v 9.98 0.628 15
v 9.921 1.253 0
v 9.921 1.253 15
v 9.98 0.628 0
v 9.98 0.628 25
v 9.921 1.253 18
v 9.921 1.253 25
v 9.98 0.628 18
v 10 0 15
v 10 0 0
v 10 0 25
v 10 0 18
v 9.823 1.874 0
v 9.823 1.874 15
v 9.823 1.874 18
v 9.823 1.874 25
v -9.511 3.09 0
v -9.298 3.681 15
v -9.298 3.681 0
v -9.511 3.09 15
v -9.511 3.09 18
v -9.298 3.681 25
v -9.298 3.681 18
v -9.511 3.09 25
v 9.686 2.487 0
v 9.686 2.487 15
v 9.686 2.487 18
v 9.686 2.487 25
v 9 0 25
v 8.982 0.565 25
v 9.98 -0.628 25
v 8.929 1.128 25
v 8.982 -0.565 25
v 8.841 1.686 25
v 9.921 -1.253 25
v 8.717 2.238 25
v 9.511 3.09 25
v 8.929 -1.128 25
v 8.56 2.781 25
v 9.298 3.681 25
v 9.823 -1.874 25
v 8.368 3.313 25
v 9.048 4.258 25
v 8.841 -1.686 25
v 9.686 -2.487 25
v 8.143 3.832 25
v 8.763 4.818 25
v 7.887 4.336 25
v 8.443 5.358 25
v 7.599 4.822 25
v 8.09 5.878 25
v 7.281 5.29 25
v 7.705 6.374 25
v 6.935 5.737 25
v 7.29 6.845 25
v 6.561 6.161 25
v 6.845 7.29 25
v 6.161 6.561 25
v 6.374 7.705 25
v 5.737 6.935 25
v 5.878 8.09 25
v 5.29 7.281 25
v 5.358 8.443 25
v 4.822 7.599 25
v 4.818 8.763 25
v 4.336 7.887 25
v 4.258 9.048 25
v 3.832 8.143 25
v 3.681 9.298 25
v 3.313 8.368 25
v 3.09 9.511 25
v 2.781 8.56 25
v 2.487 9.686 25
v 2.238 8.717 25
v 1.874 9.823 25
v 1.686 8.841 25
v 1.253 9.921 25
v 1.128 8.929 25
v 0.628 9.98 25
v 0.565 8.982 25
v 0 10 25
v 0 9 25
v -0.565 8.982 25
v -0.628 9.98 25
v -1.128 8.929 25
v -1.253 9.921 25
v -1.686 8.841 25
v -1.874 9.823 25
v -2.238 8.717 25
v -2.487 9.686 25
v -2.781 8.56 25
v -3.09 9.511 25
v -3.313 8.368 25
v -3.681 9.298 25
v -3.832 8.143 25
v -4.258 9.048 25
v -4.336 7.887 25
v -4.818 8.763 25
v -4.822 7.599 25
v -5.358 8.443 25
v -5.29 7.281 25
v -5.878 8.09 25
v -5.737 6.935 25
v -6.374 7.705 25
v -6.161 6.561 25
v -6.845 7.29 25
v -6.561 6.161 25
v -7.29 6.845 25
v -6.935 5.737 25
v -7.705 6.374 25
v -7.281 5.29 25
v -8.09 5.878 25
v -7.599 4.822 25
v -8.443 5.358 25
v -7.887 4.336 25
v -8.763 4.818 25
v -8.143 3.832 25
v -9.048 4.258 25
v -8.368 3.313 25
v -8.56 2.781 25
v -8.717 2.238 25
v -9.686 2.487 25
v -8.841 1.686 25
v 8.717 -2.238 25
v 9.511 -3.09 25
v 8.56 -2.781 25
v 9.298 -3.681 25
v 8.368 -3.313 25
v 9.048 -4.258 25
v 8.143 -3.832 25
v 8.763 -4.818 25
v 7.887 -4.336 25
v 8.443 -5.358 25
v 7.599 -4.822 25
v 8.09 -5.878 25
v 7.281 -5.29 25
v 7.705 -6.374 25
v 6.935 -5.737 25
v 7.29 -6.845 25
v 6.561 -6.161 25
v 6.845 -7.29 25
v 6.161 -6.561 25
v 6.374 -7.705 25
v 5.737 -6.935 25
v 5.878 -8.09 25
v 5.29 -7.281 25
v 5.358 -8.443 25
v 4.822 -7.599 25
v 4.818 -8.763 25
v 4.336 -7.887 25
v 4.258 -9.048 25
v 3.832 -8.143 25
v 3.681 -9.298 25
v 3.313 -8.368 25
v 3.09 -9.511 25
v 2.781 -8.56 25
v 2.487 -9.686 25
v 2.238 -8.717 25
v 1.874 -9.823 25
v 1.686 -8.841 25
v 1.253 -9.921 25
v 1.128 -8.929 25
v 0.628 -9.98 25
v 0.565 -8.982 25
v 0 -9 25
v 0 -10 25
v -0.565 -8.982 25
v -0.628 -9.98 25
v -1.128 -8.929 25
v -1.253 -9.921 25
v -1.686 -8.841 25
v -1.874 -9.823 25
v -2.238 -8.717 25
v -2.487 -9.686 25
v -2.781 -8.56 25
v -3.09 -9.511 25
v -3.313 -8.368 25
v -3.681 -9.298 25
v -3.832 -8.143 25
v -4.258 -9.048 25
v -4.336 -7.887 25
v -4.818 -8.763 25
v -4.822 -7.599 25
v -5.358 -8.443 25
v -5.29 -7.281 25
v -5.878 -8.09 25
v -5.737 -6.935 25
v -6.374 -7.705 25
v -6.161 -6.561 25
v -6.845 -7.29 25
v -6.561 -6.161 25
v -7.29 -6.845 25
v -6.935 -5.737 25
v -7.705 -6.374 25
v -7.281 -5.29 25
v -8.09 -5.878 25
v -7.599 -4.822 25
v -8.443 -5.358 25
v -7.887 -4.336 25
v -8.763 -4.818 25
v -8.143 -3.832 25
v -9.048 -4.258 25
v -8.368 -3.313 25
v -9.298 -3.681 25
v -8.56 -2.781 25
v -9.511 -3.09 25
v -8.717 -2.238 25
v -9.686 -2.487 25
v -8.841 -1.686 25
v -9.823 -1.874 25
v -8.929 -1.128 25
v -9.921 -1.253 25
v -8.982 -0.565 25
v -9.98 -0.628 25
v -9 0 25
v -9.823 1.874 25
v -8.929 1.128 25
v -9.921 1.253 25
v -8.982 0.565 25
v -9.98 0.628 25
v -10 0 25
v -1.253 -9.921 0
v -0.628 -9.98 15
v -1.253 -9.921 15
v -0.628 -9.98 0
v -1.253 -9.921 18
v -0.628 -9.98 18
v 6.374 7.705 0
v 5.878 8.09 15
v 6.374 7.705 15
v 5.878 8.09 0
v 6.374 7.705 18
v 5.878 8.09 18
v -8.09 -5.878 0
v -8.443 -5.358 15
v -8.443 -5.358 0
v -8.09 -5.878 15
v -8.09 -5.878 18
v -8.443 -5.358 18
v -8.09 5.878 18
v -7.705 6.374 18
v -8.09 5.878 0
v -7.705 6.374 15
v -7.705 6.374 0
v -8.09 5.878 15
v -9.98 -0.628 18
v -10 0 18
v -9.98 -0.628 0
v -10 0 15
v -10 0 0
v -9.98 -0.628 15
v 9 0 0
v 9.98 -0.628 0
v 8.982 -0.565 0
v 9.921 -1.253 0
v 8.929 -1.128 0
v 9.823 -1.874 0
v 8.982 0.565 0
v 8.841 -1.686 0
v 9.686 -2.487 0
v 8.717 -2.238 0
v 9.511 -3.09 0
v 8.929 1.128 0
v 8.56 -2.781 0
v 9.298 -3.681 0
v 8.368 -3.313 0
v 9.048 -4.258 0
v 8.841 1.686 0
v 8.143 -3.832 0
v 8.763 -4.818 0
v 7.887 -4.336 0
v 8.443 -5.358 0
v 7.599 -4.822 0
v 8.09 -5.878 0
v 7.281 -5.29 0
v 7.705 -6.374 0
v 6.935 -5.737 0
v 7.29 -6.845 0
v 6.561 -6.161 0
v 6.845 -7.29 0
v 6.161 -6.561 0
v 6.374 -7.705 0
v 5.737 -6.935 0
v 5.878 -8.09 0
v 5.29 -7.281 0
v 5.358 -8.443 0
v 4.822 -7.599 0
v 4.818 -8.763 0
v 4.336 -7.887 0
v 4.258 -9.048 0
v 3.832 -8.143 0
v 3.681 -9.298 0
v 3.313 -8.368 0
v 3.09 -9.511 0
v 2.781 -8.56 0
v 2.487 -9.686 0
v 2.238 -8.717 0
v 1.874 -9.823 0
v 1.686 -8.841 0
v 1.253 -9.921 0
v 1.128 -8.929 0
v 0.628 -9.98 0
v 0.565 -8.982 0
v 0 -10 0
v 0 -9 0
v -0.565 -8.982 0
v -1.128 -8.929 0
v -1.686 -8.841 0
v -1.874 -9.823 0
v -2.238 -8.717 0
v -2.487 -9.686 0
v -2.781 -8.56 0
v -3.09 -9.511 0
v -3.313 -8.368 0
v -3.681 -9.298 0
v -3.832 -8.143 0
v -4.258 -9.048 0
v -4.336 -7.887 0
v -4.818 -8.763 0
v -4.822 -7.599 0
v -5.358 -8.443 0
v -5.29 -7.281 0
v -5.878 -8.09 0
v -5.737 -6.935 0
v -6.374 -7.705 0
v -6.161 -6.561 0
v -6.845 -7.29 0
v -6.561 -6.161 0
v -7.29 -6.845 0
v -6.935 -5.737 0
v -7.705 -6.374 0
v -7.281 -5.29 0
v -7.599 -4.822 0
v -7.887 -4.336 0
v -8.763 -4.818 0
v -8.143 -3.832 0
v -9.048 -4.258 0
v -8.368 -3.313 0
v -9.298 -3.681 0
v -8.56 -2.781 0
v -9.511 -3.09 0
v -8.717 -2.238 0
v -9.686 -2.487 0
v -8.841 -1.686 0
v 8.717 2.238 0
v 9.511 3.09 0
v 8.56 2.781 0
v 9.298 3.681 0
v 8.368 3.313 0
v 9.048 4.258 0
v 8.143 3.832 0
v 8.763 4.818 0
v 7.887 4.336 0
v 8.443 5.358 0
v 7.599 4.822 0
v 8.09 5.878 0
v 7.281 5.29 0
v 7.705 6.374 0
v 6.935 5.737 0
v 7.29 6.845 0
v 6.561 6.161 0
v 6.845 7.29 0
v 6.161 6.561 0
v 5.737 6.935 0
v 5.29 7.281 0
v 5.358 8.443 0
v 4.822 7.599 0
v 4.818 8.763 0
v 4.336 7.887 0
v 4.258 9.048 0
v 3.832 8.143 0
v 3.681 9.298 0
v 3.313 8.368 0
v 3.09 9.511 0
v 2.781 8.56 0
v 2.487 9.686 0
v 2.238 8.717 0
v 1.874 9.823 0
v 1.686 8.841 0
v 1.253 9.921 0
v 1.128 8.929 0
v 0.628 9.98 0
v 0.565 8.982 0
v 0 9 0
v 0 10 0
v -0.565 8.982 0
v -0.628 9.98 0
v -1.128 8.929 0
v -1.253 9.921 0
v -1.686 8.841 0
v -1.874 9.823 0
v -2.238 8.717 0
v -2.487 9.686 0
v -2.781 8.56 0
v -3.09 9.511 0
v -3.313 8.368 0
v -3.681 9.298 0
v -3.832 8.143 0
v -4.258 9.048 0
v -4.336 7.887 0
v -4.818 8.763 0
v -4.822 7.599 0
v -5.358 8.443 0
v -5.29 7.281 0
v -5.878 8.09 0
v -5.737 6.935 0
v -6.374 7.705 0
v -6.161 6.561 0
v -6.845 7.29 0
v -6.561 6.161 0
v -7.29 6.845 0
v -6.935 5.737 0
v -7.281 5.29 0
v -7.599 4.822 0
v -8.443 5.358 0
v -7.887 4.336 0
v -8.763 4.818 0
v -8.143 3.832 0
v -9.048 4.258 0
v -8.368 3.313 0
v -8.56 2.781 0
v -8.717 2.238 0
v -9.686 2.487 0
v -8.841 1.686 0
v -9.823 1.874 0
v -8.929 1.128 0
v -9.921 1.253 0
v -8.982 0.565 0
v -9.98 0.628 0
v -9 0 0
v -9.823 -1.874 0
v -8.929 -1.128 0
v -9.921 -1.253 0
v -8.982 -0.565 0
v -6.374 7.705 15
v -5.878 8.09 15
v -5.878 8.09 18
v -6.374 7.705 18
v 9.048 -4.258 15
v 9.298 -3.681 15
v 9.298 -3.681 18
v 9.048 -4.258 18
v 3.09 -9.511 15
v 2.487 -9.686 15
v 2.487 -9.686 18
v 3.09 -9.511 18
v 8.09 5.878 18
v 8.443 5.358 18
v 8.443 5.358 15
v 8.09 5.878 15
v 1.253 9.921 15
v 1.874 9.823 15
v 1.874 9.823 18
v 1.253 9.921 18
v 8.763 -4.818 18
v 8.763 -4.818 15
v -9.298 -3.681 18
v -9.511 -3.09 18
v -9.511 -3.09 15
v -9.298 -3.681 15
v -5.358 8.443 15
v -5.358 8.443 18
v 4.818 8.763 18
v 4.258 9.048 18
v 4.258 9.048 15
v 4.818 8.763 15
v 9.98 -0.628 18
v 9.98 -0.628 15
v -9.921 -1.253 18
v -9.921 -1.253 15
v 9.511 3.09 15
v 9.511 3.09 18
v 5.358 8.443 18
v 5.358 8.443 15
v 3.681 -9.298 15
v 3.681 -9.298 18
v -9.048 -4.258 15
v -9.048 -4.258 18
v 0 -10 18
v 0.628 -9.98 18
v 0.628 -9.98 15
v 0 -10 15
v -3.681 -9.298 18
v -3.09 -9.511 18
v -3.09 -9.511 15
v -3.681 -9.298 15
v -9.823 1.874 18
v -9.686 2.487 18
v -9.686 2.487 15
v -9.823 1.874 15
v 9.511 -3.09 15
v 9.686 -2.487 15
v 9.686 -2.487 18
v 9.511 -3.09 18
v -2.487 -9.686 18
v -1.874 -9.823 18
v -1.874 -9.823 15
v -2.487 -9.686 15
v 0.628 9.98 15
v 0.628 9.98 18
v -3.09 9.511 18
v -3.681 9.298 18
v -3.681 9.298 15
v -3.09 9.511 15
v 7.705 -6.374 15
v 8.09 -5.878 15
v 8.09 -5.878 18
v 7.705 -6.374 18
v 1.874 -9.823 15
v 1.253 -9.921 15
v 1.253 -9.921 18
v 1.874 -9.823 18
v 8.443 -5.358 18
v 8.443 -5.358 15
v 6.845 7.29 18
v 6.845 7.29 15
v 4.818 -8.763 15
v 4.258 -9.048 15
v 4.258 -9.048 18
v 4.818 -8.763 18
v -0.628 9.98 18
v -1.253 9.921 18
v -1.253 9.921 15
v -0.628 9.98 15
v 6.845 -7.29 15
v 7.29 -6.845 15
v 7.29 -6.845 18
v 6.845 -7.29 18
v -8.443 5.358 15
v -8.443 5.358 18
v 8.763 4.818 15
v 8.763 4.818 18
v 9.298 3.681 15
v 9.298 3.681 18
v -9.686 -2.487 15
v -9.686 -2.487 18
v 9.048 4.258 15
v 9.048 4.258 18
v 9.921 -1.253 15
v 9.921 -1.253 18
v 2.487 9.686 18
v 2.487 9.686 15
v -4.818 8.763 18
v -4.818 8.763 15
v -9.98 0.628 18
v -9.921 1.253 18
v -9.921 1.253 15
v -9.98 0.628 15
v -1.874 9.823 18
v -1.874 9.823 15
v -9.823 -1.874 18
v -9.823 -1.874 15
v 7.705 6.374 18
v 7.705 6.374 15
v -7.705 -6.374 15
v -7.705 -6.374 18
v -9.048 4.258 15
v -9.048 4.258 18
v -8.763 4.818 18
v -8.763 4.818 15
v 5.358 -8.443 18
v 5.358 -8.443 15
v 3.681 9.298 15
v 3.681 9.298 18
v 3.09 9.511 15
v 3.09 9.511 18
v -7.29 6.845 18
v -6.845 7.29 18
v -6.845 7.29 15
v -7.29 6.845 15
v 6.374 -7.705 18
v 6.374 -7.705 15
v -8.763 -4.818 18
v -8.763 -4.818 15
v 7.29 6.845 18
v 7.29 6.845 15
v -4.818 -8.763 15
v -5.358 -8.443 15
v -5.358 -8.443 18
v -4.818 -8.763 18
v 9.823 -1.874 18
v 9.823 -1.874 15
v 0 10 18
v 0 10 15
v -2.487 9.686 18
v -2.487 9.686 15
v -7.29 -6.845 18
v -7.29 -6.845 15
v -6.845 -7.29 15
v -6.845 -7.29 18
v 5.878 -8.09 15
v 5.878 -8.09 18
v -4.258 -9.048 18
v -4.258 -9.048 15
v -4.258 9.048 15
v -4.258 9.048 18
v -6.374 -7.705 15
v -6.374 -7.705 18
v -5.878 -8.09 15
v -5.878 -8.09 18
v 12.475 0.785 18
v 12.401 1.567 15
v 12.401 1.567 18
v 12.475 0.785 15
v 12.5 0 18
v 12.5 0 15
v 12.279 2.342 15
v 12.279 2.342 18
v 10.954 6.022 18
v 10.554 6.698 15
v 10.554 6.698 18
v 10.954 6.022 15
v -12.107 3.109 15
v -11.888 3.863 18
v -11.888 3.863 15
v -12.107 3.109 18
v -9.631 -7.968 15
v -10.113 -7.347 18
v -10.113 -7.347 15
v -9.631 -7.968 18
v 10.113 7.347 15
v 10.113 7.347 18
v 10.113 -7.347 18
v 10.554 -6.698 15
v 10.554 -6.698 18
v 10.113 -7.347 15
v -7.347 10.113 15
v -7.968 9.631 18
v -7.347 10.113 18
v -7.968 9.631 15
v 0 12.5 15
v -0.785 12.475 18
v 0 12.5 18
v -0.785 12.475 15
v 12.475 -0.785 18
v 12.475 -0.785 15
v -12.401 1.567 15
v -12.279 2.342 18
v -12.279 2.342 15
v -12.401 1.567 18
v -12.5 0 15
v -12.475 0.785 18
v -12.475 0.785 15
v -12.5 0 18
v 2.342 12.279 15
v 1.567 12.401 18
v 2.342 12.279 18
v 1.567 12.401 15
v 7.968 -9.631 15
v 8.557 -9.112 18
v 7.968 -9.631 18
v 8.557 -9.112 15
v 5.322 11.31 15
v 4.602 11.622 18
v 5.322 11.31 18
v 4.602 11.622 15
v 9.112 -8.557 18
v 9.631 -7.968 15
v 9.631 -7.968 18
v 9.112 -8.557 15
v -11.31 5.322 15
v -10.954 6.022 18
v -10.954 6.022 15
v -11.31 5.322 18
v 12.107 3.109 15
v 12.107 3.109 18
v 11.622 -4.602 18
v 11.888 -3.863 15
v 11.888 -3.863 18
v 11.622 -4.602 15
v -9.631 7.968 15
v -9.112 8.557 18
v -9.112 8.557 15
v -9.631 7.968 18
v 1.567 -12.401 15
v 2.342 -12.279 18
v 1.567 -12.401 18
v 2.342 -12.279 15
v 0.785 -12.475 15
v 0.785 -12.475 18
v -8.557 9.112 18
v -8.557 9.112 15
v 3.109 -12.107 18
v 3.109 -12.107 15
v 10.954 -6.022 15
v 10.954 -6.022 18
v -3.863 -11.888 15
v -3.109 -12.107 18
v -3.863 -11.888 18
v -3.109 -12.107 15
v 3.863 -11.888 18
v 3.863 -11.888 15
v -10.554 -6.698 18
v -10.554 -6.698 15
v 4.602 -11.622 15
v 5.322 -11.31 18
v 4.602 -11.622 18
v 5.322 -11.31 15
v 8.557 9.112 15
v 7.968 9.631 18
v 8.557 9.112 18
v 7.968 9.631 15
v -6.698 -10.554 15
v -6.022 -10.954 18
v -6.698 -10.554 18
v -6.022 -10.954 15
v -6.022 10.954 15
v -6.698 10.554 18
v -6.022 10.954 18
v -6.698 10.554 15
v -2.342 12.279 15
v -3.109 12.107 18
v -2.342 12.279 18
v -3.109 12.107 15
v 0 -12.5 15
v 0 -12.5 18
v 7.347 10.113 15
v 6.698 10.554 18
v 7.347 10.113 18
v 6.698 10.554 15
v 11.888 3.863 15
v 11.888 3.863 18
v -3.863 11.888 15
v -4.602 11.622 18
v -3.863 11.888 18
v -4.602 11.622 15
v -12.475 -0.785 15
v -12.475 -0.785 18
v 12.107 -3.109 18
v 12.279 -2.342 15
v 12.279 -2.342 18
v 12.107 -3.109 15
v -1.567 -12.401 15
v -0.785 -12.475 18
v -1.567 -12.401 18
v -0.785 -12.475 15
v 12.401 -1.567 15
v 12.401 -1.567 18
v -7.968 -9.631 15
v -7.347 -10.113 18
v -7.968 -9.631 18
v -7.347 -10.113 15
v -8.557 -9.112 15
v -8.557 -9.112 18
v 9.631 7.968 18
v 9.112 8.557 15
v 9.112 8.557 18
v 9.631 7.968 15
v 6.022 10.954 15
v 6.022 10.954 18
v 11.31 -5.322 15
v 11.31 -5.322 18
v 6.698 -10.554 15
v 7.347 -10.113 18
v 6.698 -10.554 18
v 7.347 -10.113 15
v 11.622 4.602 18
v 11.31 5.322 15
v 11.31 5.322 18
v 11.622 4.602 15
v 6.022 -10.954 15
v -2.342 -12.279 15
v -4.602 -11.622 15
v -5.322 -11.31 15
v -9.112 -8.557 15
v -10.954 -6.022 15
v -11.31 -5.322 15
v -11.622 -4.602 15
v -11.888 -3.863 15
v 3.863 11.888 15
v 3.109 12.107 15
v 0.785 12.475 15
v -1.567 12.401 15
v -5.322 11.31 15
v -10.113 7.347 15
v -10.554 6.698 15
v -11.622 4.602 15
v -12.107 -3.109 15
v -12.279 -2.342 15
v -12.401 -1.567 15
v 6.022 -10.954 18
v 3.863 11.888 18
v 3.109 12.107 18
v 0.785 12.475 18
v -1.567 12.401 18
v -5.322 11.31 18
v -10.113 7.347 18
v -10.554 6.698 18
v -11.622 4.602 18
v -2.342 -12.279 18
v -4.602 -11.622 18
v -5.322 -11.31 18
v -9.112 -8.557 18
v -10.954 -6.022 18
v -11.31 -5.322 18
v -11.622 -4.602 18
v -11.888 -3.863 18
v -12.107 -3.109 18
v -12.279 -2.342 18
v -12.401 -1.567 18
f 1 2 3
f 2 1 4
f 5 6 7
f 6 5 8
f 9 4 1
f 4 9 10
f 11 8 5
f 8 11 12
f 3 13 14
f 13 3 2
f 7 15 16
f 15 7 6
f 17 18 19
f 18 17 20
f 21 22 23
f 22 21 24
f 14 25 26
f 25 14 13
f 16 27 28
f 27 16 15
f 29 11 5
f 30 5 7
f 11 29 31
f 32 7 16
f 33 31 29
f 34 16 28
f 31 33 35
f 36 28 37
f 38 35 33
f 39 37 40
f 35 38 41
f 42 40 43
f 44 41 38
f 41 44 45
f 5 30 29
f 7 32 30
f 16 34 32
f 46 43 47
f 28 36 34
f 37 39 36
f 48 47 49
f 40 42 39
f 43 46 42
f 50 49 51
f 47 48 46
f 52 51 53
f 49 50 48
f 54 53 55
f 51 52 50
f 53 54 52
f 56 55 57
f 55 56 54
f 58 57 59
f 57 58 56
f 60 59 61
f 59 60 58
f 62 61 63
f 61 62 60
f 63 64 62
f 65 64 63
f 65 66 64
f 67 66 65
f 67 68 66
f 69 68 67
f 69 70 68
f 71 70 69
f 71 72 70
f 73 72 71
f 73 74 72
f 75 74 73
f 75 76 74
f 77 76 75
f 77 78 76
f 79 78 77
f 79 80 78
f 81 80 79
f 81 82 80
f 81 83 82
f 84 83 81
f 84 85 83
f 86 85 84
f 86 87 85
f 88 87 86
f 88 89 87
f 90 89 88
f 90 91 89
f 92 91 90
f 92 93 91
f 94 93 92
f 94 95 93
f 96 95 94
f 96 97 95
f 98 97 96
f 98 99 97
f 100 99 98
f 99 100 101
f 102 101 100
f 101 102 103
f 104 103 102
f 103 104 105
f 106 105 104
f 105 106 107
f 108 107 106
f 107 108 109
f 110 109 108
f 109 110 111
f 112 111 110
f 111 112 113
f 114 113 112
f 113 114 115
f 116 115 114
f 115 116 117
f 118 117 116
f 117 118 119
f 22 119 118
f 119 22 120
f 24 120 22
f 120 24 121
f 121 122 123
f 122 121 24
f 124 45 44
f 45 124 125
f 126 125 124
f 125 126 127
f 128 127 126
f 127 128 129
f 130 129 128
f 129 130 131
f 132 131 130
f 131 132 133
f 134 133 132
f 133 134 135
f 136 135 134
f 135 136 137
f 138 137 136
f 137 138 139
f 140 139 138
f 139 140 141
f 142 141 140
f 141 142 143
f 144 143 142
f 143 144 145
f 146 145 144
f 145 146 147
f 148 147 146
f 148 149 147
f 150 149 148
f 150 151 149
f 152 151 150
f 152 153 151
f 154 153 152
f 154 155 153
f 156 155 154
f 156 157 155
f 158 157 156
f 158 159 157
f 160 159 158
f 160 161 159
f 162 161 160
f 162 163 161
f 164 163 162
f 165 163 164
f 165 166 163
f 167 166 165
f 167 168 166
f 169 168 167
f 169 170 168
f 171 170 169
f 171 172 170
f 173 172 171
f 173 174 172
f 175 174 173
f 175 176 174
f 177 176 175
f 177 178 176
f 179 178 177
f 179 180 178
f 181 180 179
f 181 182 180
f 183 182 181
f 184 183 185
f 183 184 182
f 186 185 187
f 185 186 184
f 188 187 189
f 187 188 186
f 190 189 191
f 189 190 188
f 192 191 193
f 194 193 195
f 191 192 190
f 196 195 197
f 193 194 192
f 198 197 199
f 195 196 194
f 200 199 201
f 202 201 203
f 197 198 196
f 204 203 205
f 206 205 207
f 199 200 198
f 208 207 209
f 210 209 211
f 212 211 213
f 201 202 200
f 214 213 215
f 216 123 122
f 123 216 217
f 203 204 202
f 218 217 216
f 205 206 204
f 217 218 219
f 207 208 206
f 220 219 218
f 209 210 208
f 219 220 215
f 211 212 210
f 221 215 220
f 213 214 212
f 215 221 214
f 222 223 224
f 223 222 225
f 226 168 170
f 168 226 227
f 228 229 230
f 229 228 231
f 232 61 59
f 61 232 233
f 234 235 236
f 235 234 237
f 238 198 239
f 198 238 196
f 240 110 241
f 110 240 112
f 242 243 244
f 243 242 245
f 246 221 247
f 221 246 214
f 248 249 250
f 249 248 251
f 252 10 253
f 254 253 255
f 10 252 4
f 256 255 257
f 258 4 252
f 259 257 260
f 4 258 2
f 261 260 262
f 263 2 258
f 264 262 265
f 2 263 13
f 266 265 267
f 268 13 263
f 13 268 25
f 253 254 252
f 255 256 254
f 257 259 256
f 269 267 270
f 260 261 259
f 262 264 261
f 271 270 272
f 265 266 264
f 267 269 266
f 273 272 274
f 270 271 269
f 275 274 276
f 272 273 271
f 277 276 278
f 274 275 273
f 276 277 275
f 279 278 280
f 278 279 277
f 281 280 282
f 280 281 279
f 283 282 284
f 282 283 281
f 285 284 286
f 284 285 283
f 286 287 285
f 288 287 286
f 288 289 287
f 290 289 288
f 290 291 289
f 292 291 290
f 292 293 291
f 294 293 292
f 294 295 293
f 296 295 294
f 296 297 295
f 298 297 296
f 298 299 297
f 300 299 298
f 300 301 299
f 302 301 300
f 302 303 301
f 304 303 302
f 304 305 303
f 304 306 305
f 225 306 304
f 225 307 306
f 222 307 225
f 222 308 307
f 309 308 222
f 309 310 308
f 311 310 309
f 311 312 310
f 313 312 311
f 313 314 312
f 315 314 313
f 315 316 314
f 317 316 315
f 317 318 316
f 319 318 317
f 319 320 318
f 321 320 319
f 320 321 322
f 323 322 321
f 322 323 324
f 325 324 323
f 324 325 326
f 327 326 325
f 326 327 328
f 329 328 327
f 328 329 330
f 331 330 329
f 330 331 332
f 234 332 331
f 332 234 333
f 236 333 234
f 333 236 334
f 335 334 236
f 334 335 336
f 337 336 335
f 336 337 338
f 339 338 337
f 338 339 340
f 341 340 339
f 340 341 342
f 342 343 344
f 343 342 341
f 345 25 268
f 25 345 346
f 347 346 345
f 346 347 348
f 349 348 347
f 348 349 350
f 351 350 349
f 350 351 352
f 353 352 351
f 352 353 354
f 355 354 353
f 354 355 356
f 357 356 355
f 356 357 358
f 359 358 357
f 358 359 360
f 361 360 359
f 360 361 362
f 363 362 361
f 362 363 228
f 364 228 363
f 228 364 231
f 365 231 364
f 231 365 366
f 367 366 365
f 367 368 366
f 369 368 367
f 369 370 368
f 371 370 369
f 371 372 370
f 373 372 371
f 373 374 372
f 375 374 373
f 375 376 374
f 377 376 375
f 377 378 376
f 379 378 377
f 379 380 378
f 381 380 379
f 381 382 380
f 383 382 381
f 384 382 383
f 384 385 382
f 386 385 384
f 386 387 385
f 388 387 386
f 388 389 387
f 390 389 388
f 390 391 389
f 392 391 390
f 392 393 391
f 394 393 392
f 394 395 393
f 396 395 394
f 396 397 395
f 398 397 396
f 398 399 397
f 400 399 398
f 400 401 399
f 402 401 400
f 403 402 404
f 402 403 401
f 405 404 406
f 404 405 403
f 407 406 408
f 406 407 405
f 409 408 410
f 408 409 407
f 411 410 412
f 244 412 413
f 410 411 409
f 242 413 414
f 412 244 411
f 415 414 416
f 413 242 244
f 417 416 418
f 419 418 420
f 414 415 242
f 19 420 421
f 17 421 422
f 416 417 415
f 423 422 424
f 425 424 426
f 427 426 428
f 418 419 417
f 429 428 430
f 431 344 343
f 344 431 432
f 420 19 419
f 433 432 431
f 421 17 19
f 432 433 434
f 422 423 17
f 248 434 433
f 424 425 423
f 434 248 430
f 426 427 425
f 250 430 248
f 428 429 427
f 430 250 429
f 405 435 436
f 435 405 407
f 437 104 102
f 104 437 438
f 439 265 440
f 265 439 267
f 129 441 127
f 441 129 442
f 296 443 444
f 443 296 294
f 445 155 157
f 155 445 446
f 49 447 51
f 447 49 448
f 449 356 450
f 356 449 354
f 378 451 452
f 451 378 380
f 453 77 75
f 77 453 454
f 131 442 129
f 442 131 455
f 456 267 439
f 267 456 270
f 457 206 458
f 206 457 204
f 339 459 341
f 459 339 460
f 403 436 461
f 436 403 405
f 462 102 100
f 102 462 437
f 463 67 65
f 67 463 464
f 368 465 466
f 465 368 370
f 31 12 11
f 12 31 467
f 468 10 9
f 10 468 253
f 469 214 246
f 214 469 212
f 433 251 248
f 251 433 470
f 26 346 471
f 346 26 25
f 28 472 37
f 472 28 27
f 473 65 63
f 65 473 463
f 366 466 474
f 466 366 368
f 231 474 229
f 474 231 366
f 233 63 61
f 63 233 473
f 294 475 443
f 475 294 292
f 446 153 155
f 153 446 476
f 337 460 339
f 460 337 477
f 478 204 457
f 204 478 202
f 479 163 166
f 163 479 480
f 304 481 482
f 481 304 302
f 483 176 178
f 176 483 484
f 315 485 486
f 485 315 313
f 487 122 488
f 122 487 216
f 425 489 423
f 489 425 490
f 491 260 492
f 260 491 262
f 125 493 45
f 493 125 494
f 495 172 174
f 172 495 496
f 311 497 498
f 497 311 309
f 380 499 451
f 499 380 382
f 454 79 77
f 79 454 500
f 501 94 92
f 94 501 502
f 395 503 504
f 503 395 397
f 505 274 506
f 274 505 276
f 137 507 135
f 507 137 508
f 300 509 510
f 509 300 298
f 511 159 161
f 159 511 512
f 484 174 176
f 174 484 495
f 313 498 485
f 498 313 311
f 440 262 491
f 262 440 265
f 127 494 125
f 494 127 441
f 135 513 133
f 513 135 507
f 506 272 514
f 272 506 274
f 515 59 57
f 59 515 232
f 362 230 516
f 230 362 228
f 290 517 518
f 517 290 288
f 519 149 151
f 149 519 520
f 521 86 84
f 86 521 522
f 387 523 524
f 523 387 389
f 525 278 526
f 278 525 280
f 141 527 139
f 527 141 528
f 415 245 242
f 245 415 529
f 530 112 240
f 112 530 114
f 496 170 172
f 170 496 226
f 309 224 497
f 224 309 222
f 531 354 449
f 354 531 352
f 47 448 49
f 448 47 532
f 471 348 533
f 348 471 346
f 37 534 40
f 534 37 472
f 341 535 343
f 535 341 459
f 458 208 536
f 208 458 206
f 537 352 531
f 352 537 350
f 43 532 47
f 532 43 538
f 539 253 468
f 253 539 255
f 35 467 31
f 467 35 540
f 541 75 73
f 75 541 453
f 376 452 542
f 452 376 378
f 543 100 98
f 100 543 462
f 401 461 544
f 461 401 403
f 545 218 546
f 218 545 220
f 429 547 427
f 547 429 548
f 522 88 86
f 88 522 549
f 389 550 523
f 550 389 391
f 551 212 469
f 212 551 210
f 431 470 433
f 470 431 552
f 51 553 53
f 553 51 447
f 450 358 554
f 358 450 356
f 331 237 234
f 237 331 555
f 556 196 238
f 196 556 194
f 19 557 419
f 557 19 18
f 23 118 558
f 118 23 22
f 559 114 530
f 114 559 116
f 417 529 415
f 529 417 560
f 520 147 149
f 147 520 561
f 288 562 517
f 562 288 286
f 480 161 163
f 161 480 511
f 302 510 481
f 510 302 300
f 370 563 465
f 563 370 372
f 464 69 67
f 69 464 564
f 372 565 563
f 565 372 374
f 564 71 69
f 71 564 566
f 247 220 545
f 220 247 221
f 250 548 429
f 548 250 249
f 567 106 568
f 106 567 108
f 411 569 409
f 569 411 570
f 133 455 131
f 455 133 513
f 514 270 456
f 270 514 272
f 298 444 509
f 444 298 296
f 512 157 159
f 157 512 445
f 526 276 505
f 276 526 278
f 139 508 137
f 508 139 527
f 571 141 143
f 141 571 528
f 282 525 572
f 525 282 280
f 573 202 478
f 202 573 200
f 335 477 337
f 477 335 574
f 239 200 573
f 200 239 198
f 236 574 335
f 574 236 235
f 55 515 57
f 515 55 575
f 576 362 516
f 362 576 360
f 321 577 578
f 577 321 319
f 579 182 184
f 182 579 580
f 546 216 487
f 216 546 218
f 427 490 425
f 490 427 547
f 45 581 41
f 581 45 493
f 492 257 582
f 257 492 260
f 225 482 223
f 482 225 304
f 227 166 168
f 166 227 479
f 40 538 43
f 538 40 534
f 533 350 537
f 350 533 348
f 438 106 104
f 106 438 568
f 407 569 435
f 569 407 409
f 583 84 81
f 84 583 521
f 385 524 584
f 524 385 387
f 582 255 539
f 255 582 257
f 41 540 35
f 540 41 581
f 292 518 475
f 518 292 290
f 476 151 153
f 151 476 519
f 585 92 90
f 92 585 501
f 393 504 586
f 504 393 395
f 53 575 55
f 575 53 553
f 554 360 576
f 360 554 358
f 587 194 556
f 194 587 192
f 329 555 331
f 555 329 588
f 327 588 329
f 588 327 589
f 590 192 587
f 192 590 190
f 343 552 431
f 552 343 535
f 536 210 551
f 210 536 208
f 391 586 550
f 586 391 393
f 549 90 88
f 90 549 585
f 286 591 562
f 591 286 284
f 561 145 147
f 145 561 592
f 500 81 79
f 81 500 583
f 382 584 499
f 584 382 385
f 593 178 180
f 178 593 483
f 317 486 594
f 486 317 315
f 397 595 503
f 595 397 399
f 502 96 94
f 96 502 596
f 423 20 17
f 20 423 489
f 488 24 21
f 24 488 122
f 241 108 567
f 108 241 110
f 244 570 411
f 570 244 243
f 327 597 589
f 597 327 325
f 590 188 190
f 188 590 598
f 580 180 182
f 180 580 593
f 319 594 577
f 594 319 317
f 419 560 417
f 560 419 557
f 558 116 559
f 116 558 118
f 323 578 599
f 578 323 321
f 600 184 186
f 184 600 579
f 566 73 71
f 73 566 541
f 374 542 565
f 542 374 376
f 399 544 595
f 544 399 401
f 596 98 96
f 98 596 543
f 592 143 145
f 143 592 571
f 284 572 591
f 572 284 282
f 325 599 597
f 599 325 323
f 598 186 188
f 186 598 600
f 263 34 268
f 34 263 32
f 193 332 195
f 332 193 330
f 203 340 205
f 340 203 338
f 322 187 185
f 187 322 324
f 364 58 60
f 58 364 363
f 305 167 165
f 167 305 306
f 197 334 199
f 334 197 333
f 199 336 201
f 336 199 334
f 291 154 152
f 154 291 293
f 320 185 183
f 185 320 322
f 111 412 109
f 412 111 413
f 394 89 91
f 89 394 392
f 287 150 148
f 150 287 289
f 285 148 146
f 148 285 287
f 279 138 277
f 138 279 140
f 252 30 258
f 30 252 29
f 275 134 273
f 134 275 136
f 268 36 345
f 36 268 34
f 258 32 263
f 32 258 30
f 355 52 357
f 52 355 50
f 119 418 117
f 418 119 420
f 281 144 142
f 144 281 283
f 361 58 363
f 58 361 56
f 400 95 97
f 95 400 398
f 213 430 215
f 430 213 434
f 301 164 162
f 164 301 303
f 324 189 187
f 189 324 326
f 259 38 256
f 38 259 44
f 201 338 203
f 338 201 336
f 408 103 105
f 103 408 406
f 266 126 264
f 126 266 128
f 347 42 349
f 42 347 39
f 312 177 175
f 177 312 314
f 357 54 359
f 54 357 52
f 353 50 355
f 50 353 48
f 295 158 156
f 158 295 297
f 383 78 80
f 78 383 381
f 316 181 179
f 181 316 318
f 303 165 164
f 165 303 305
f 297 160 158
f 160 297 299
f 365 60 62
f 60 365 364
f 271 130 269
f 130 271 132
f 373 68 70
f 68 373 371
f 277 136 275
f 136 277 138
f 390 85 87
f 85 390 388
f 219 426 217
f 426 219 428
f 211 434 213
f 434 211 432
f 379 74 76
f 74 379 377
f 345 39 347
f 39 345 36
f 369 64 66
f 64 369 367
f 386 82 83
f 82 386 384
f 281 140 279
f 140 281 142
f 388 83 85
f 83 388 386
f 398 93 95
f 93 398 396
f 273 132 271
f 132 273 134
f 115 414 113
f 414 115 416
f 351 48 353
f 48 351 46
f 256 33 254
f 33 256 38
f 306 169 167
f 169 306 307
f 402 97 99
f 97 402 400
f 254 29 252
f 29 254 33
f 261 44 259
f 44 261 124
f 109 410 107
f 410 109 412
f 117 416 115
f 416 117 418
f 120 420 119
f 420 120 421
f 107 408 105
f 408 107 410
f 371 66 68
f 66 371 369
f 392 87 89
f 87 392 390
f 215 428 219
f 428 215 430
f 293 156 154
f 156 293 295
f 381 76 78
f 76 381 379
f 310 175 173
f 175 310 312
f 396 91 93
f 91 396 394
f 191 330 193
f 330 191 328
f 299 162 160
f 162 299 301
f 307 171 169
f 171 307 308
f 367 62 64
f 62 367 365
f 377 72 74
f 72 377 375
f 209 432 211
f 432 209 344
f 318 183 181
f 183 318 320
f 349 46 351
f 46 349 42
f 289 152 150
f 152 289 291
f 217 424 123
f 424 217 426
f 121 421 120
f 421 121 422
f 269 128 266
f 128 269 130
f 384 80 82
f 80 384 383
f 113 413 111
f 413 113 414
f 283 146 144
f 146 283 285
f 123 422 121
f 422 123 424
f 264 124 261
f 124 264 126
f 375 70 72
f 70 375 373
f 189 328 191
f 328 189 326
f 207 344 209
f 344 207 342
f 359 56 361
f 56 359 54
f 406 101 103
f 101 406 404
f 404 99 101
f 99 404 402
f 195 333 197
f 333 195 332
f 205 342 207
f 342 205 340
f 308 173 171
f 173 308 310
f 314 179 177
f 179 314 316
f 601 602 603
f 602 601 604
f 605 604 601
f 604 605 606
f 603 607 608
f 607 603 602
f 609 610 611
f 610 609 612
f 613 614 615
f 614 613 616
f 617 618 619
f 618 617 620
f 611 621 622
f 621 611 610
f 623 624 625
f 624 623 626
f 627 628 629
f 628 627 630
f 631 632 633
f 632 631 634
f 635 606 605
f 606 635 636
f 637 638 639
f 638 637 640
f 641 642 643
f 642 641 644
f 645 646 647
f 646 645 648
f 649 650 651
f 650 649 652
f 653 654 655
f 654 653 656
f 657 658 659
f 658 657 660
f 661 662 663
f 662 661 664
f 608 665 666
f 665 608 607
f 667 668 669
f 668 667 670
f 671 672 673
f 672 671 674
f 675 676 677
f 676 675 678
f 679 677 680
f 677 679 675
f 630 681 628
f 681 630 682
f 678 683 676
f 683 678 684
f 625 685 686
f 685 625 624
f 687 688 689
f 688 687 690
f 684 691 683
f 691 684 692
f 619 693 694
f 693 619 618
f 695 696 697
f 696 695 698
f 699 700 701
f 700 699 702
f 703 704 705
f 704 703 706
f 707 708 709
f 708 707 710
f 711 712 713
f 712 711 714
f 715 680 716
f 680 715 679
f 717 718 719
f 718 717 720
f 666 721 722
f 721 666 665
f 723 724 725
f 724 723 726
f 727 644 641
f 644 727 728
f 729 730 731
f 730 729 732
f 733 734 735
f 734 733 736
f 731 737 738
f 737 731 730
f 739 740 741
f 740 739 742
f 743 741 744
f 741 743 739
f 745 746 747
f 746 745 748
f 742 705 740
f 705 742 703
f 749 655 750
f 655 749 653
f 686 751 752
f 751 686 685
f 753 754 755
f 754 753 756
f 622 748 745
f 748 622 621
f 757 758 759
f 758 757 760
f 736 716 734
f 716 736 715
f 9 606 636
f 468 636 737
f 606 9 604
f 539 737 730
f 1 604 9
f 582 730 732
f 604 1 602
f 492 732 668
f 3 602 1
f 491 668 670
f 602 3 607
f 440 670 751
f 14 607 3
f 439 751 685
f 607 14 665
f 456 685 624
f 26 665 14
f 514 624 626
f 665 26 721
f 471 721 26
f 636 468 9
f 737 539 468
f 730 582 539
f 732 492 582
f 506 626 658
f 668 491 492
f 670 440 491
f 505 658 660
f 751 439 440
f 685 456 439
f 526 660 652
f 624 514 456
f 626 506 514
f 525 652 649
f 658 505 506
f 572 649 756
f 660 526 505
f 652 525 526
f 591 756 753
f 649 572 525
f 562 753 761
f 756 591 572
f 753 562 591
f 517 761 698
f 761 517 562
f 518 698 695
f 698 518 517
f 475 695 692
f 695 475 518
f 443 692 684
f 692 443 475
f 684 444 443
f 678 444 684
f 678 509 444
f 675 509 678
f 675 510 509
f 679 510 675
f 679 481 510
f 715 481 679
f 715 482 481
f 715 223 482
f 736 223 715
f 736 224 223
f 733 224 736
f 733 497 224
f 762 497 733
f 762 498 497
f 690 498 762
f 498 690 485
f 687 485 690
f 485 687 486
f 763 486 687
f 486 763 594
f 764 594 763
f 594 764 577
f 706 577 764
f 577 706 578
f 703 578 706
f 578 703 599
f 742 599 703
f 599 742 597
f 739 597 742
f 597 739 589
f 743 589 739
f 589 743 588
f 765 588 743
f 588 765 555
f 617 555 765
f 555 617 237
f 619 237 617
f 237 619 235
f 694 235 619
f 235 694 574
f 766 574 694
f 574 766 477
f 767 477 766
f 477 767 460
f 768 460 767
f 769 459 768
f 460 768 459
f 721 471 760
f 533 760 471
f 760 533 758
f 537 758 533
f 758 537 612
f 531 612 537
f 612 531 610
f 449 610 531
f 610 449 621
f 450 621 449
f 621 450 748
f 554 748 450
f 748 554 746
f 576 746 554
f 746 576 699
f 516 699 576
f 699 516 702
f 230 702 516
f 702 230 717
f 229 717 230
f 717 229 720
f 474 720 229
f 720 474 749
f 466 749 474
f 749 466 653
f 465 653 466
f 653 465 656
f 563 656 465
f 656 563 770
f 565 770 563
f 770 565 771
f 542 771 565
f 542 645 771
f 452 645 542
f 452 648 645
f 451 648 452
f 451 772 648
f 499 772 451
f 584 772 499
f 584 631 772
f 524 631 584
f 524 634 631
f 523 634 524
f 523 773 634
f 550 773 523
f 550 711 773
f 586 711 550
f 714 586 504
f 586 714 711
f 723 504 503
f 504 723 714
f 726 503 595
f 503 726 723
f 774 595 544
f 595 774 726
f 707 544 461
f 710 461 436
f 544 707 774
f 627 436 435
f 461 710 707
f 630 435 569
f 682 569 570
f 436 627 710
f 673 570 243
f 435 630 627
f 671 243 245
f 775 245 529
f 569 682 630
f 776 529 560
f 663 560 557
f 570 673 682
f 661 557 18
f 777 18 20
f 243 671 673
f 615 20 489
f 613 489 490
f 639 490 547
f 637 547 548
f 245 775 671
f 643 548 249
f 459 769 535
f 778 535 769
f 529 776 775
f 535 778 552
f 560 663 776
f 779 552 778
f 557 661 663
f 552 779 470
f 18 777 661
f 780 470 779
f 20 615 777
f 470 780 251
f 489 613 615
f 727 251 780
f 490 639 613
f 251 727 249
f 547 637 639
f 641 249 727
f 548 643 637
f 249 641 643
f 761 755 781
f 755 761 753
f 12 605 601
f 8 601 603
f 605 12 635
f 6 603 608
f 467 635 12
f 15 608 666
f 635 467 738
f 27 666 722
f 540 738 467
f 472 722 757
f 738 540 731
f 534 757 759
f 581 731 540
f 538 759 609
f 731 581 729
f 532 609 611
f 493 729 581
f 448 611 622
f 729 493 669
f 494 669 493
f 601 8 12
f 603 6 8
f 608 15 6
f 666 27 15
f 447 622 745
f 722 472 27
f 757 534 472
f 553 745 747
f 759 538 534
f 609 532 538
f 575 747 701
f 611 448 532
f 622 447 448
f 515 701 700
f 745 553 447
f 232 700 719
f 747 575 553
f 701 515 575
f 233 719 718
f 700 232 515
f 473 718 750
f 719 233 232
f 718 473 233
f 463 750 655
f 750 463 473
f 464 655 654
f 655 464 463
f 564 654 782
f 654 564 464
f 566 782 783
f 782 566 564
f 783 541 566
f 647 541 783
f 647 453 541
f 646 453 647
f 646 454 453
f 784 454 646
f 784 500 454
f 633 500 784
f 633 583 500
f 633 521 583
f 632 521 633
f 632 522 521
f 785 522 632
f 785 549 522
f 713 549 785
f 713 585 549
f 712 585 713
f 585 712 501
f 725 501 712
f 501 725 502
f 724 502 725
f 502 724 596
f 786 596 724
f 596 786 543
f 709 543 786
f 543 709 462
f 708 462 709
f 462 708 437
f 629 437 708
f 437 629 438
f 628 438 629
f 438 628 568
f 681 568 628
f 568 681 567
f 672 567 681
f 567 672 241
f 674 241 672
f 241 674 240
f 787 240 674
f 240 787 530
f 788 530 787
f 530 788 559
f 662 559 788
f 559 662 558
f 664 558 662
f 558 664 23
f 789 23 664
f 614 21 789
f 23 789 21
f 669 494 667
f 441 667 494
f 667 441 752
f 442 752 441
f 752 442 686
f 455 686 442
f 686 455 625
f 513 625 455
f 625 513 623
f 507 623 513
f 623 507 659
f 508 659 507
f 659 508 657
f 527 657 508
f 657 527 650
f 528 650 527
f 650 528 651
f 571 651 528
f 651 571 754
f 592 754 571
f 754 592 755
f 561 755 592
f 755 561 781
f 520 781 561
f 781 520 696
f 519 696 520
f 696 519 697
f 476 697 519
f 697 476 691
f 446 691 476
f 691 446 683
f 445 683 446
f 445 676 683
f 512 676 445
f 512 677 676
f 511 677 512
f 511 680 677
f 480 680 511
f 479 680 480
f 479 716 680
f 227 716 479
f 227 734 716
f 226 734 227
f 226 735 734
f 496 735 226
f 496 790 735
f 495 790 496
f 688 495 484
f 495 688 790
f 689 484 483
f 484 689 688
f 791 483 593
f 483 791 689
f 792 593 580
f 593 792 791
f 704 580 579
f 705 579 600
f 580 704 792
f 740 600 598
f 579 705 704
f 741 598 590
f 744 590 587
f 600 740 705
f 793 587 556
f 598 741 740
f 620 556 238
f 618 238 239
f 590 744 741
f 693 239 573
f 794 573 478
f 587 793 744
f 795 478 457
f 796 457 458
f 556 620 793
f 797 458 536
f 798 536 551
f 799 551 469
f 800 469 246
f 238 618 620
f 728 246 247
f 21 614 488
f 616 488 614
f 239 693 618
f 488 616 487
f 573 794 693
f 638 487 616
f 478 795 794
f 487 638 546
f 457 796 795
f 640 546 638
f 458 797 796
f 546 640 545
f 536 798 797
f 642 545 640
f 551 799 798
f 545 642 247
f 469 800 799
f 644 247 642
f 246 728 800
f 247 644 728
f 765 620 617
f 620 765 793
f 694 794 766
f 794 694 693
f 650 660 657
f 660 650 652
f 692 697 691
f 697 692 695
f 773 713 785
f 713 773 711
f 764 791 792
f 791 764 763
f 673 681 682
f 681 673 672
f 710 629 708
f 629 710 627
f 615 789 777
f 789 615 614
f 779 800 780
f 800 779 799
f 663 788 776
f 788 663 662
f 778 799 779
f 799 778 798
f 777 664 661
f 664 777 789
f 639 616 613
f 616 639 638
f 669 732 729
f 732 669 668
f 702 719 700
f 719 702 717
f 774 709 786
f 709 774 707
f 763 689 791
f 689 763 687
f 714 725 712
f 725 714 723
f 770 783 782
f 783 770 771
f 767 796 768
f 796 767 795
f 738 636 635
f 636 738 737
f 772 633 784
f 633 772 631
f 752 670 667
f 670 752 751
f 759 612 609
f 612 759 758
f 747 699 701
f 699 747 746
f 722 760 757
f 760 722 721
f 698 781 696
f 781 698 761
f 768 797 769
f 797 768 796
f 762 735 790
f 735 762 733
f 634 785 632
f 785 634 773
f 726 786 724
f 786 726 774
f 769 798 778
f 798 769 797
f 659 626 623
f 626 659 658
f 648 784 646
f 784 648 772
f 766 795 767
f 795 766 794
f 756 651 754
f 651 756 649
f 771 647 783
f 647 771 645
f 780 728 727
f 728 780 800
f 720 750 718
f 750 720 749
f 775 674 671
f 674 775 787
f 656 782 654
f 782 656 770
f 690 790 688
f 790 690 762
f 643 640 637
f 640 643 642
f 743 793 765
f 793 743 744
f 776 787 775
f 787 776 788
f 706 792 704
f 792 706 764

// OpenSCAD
/*
    Design of an adapter to fill ciss tanks using Epson 102 series or similar
    
    The idea is to remove the cap of the ink tank we want to refill, position the adapter and then place the bottle to fill. Lift the bottle once the desired ink level has been reached.
    Ideally, there should be an adapter per ink colour, which should be washed with water and dried after use.
    
    ©Filippo Falezza 2022, released under GPLv3 and followings
    
    Scale= 1unit/1mm
*/

//need to cut it in lower cylinder and upper structure due to printing limitations
//lower structure

$fn=100;

//main cylinder
difference(){
    translate([0,0,0])
    cylinder(h = 25, d=20);
    translate([0,0,-1])
    cylinder(h=30, d=18);
    //2mm thick walls
}

//outer ring
difference(){
    translate([0,0,15])
    cylinder(h = 3, d=25);
    translate([0,0,14])
    cylinder(h=5, d=19);
    //2mm thick walls
}

//inserts to upper structure
    //should do like arcs of cylinders?
